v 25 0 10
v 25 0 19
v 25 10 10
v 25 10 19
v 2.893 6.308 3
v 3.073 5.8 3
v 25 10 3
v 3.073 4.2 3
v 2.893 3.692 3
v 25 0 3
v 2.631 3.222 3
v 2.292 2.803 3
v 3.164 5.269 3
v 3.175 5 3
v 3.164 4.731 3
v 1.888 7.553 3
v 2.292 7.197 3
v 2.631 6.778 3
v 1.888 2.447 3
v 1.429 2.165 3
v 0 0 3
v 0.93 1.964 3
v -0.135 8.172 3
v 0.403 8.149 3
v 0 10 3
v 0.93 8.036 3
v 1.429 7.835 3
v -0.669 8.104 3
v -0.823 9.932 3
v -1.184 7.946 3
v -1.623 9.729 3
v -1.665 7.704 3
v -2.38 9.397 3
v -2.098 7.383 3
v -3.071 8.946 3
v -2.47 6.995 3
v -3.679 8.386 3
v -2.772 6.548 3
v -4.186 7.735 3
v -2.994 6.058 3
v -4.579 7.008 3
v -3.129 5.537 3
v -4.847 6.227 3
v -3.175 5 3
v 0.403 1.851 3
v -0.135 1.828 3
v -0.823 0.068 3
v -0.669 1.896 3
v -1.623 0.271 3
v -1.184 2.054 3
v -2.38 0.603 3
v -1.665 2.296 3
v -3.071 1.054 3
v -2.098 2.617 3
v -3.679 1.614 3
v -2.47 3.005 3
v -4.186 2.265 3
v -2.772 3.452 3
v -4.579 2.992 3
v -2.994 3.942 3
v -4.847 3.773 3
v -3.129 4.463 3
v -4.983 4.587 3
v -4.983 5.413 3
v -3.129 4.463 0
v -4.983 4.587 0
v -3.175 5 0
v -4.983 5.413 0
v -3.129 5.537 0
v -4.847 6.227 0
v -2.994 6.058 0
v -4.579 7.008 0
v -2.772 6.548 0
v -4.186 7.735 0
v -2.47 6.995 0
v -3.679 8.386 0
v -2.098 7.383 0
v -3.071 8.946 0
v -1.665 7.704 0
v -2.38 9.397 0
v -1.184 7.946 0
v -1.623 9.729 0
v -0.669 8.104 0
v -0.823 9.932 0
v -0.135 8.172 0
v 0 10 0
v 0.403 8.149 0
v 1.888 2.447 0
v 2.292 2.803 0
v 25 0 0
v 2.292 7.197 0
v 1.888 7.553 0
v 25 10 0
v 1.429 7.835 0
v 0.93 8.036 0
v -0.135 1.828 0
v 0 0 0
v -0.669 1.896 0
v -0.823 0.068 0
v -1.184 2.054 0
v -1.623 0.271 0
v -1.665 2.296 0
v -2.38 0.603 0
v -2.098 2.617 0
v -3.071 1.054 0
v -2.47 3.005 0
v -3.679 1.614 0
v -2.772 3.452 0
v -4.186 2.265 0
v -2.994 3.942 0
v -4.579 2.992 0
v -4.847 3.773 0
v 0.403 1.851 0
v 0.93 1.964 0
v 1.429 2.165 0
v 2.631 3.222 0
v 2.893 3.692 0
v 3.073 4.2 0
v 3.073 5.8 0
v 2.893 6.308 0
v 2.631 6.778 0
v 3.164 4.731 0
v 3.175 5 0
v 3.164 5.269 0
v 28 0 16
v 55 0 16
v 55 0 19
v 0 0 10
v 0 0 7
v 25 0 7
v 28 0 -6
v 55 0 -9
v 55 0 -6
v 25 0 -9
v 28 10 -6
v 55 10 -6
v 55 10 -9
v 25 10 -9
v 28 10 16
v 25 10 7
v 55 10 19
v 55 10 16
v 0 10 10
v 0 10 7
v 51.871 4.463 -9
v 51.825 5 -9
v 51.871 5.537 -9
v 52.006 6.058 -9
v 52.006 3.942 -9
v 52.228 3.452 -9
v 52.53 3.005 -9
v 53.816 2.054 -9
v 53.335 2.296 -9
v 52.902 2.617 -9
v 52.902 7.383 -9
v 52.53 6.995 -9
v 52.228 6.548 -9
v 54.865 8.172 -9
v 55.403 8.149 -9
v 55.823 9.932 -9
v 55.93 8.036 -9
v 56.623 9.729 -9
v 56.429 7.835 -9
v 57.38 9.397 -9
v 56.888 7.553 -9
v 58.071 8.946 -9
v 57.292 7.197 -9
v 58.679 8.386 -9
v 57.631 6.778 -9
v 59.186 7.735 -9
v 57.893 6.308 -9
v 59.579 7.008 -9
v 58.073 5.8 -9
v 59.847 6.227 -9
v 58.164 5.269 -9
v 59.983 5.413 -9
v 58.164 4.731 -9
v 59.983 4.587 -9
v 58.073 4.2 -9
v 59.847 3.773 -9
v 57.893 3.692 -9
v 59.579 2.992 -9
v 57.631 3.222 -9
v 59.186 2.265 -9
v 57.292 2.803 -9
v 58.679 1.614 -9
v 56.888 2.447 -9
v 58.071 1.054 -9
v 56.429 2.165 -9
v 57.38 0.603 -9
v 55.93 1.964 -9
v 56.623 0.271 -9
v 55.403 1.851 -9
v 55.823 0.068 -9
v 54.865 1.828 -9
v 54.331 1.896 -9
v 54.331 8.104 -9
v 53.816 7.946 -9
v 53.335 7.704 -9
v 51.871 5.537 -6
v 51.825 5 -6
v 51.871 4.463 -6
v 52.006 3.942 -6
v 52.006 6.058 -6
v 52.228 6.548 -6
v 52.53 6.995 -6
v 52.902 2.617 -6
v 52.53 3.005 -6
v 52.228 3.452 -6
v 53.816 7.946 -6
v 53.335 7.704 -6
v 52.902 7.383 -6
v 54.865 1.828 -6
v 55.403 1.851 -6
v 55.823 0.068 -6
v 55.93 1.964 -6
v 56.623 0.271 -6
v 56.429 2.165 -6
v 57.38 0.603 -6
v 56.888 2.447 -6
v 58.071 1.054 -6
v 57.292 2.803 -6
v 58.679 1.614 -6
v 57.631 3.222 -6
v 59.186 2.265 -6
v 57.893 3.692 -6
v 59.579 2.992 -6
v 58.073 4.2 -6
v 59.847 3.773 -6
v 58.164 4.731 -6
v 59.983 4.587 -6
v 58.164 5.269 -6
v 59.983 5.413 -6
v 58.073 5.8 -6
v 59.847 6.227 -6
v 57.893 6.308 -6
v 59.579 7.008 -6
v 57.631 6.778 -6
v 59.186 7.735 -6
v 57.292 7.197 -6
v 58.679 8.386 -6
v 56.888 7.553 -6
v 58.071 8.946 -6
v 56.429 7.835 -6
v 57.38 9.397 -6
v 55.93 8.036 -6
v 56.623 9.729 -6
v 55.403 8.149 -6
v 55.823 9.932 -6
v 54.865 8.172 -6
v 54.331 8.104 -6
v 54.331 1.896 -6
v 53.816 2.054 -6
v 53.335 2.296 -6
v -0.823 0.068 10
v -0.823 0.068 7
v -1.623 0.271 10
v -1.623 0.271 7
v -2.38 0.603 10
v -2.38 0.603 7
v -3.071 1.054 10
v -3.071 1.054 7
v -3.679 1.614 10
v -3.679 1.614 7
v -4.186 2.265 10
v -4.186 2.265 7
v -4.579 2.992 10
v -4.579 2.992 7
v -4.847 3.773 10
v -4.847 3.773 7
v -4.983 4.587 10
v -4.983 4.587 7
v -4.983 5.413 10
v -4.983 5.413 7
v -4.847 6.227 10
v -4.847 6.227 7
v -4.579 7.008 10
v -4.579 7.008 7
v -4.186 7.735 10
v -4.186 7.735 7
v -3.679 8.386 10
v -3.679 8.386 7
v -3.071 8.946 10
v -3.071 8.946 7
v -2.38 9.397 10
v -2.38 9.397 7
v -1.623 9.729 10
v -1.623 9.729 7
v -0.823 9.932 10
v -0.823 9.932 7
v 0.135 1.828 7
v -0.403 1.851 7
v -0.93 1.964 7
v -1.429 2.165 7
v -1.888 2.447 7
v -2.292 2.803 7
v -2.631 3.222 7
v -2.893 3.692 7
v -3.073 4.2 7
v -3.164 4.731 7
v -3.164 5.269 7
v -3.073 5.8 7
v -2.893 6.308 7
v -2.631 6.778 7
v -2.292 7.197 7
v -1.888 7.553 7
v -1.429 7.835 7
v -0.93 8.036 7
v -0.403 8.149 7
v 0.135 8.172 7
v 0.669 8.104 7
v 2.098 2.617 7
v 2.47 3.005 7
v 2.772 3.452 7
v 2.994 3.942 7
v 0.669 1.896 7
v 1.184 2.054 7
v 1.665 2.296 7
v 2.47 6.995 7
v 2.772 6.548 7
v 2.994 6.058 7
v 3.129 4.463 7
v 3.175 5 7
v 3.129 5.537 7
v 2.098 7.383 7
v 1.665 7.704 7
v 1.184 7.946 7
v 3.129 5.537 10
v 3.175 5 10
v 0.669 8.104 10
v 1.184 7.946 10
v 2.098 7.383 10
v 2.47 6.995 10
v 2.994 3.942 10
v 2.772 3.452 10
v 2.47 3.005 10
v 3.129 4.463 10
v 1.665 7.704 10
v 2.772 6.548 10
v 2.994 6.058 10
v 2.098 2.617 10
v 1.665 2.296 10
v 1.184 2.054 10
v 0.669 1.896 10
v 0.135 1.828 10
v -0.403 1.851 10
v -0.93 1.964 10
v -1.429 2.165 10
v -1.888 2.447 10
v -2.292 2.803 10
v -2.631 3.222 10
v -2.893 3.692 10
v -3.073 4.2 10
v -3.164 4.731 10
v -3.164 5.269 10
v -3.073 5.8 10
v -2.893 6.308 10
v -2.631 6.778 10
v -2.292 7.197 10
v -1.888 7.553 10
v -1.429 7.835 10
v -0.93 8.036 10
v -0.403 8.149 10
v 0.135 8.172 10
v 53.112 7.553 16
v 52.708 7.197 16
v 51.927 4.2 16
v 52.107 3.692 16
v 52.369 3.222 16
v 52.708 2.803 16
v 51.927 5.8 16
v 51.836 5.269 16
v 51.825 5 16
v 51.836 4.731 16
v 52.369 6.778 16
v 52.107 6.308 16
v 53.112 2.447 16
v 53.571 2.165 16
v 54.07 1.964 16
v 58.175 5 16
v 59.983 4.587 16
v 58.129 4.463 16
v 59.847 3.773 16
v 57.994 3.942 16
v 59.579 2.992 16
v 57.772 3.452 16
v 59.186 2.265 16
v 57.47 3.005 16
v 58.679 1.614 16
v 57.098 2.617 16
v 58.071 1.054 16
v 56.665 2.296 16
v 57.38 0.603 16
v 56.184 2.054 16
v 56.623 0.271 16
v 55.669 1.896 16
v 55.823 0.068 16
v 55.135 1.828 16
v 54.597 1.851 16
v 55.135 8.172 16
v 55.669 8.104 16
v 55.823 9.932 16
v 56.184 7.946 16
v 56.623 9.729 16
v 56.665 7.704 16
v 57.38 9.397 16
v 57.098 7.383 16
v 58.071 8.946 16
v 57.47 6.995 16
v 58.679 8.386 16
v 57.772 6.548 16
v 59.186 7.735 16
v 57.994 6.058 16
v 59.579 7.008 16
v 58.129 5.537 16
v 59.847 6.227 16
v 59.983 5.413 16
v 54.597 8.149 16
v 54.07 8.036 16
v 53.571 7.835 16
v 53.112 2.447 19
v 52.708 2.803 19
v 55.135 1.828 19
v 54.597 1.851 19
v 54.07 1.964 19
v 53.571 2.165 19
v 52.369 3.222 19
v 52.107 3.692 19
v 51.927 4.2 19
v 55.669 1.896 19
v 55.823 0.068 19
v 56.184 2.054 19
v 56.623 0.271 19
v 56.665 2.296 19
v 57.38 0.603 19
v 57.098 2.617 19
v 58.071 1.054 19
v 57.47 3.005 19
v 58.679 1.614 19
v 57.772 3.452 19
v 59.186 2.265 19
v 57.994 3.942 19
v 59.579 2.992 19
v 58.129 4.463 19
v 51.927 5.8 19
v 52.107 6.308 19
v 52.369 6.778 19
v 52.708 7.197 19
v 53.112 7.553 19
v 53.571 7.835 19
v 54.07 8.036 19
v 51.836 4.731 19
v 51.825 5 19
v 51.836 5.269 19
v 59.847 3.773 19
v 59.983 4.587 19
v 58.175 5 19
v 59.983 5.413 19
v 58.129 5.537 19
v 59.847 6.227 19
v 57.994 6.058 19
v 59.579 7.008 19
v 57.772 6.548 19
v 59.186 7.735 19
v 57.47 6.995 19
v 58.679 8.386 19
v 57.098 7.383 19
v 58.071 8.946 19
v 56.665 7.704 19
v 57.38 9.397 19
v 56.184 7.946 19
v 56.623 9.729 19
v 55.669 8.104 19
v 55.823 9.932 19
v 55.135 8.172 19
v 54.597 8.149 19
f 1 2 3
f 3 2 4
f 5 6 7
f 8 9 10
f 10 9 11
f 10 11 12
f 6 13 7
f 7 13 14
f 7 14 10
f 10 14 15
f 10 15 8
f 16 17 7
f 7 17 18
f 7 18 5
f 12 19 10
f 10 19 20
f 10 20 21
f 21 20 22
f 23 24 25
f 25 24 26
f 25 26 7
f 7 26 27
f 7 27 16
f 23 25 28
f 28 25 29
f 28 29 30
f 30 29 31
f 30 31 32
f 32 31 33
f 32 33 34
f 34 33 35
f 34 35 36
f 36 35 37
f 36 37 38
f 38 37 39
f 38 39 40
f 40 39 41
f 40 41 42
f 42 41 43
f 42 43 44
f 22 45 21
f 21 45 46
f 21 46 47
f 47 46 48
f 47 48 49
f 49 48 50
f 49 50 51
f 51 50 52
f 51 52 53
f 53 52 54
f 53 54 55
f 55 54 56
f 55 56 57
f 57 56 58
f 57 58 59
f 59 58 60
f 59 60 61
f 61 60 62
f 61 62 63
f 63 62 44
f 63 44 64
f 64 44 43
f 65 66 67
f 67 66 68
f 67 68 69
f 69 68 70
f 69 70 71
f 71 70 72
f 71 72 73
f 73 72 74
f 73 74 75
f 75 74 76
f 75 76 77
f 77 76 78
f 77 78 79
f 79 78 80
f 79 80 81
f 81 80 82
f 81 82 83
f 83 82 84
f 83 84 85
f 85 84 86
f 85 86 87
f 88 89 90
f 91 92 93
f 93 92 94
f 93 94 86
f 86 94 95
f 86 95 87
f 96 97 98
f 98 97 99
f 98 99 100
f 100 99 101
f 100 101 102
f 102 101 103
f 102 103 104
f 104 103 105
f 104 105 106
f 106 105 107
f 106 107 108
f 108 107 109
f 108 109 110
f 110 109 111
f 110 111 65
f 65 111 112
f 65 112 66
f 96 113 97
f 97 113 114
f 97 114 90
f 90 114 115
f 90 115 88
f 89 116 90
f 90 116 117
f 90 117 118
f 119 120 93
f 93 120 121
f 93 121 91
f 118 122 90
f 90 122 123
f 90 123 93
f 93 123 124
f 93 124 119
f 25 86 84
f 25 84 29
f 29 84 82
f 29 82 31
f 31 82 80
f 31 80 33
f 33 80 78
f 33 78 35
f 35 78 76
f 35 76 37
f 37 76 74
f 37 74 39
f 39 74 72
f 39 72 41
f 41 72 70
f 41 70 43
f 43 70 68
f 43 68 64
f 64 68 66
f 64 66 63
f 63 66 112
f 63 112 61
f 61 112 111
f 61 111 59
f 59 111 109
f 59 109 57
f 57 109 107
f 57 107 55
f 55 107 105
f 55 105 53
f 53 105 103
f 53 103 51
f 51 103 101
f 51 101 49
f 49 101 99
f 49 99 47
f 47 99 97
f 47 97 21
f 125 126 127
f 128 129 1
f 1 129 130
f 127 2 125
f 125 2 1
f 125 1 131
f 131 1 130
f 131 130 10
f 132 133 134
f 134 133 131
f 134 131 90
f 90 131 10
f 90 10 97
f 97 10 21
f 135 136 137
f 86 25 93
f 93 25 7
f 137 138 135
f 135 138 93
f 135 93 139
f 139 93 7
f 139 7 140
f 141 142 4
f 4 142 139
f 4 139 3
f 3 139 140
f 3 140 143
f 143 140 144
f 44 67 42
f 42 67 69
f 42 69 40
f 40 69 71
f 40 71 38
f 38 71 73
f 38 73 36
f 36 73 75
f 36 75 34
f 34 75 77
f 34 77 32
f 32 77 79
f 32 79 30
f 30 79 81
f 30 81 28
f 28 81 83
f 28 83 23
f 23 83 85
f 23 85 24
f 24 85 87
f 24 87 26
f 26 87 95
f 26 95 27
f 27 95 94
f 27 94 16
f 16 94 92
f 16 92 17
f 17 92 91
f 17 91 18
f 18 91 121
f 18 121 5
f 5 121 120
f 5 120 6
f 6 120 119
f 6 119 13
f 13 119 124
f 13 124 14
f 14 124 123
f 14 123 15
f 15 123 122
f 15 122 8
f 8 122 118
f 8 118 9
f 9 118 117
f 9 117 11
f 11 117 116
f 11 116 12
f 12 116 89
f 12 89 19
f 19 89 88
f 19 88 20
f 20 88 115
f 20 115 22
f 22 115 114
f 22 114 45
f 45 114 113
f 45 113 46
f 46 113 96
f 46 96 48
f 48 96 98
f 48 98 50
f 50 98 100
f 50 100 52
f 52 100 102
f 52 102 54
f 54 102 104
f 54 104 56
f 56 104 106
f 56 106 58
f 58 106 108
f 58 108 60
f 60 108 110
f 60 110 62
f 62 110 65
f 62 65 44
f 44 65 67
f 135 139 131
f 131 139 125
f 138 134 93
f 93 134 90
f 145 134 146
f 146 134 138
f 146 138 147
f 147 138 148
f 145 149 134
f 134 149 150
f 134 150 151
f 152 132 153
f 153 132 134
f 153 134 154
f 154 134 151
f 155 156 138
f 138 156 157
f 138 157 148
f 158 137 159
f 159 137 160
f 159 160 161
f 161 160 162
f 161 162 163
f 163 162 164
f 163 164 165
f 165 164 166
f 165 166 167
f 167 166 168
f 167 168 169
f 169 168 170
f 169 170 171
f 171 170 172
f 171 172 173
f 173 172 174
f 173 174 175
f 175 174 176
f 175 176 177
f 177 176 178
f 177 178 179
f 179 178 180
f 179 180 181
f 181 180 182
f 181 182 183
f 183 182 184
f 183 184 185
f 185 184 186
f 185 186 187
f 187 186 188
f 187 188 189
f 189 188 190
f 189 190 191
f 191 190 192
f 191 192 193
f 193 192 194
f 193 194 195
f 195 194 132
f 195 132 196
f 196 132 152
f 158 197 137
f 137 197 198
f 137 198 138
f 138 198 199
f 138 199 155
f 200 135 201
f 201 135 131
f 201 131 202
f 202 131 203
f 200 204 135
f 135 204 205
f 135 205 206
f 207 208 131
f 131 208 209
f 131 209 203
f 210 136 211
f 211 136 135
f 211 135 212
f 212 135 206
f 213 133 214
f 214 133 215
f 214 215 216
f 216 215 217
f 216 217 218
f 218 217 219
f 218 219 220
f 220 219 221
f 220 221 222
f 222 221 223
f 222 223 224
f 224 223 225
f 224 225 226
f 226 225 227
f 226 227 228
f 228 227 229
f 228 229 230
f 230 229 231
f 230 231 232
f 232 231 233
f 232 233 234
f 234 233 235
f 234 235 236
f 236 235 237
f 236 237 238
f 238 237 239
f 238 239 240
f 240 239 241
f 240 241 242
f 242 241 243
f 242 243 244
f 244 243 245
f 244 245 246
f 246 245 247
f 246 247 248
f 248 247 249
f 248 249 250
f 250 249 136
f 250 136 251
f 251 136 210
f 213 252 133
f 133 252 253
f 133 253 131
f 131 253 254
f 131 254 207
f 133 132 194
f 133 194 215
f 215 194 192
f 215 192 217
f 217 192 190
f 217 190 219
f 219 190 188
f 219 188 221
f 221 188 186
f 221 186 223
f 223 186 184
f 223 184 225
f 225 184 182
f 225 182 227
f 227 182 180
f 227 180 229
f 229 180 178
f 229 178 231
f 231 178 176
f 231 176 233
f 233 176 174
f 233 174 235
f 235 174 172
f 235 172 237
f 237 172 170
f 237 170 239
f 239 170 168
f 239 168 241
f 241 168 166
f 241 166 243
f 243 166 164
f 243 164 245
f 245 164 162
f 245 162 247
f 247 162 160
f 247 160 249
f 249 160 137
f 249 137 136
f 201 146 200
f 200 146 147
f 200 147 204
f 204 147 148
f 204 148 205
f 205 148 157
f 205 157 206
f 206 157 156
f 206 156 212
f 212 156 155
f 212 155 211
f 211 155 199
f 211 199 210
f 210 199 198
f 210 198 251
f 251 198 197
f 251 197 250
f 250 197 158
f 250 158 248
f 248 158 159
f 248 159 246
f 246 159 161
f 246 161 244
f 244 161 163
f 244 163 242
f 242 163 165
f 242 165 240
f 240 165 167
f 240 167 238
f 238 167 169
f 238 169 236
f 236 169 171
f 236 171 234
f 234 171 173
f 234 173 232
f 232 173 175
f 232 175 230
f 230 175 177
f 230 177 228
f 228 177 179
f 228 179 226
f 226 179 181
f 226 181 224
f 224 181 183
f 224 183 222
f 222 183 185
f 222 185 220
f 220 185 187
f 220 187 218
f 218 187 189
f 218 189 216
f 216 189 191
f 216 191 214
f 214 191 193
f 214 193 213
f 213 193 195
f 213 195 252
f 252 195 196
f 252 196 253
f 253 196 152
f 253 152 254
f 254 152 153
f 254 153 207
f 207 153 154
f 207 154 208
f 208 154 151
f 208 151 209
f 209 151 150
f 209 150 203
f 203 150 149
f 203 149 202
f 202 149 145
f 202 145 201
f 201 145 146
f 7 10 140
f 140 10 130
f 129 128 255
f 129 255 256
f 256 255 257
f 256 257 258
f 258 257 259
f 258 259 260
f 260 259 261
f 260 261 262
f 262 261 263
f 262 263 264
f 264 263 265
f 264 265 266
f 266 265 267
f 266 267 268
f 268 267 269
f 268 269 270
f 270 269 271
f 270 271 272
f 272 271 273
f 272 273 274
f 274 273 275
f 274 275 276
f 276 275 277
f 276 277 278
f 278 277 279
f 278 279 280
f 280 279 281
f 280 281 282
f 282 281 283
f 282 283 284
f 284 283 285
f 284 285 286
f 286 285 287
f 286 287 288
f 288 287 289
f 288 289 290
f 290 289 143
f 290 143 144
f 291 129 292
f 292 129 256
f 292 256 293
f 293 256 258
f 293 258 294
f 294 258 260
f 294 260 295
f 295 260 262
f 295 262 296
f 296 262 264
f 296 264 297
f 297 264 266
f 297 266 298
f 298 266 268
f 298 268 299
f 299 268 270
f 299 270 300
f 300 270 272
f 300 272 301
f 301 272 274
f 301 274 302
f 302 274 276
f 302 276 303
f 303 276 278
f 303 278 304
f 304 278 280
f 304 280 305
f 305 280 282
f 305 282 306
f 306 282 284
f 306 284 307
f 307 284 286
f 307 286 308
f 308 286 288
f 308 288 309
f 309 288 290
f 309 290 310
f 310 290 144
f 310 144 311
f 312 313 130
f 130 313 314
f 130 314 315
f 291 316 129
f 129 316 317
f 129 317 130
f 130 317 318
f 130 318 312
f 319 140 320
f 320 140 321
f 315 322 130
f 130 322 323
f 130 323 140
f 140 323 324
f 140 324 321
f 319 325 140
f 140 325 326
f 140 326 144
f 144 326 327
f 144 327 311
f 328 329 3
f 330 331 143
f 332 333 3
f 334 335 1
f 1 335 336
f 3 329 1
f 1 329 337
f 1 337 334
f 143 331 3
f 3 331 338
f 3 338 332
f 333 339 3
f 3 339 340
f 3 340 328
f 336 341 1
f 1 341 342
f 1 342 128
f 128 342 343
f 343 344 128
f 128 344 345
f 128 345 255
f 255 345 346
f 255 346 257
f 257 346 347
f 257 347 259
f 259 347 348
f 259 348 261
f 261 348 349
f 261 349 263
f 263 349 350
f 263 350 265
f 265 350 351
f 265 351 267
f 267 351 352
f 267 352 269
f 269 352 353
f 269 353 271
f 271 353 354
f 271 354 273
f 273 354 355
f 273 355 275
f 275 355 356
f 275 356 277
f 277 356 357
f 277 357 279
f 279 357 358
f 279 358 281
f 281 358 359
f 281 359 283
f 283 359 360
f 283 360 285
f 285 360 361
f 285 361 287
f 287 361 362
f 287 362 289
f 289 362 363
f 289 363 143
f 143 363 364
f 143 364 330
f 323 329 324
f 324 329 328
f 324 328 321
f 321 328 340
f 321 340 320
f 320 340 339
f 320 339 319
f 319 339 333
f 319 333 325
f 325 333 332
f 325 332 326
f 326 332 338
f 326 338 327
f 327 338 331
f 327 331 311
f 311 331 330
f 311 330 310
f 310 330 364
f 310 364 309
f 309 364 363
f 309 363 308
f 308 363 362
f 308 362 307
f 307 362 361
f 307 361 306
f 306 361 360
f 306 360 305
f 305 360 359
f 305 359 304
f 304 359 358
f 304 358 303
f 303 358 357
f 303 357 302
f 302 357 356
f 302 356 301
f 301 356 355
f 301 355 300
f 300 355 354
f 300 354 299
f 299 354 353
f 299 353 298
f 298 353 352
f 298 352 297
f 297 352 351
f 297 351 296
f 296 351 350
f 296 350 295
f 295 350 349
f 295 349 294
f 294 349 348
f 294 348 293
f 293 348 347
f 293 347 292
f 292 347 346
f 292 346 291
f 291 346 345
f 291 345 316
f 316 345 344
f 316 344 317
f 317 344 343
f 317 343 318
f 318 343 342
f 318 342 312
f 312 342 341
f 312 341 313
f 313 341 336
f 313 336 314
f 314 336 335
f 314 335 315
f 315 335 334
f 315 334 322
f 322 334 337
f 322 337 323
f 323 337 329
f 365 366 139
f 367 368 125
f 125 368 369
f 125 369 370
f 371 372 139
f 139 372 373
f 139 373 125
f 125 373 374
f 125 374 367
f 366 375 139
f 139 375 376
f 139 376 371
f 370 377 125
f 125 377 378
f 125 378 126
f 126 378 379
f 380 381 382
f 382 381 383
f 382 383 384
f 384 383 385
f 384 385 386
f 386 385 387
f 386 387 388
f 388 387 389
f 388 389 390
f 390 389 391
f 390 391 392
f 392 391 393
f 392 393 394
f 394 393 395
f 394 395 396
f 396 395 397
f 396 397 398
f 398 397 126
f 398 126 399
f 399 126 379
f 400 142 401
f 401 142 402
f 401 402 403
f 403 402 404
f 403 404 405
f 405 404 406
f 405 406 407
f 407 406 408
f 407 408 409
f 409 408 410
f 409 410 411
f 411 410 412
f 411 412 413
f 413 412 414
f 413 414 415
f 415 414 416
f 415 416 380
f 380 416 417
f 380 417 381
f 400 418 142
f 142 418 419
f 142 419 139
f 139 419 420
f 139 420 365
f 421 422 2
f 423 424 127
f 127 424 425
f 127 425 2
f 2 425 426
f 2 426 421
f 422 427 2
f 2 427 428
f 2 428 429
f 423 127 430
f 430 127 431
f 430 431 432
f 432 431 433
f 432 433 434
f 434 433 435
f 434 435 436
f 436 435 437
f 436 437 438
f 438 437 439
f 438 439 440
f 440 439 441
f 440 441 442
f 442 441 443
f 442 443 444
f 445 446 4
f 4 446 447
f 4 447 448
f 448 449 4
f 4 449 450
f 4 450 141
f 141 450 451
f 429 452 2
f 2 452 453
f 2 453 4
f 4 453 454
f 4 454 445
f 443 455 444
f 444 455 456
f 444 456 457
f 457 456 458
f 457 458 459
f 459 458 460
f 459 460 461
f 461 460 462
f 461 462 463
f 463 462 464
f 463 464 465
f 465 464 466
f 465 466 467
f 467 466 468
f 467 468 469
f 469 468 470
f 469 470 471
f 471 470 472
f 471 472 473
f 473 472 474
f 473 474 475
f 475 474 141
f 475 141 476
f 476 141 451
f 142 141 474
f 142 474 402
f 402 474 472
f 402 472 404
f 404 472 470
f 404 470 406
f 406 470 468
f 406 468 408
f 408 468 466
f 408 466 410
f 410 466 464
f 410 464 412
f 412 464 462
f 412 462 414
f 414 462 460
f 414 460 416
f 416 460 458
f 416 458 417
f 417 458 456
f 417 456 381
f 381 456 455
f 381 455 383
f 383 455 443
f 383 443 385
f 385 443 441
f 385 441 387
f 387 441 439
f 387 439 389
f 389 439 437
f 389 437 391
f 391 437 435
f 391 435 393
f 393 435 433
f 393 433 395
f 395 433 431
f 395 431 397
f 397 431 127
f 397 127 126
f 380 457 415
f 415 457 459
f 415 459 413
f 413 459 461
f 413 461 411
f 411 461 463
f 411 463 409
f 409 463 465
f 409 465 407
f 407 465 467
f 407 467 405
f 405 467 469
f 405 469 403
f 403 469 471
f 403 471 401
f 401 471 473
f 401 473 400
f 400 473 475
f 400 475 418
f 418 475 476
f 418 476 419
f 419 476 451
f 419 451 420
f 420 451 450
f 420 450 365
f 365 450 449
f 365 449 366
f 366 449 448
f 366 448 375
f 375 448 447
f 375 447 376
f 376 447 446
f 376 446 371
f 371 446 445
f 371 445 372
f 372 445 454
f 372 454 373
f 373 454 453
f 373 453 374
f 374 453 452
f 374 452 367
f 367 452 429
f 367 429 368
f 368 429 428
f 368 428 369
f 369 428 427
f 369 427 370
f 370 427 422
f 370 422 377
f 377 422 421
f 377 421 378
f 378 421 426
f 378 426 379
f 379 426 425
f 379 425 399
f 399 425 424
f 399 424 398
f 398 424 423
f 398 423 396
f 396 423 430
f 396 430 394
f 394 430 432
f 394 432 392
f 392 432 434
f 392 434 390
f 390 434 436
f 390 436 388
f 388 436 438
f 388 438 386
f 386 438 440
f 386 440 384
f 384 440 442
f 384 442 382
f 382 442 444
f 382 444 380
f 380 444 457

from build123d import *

# Parameters (mm, degrees)
SKETCH1_R           = 3.175
BOSS_EXTRUDE1_DEPTH = 3
SKETCH2_W           = 9
SKETCH2_H           = 10
BOSS_EXTRUDE2_DEPTH = 3
SKETCH3_W           = 30
SKETCH3_H           = 10
BOSS_EXTRUDE3_DEPTH = 3
BOSS_EXTRUDE4_DEPTH = 3
SKETCH6_R           = 3.175
CUT_EXTRUDE1_DEPTH  = 3
SKETCH7_W           = 3
SKETCH7_H           = 8
BOSS_EXTRUDE5_DEPTH = 10


with BuildPart() as part:
    # Sketch1 → Boss-Extrude1 (new body)
    with BuildSketch(Plane.XY):
        with BuildLine():
            Line((0, 0), (25, 0))
            Line((25, 0), (25, 10))
            Line((25, 10), (0, 10))
            ThreePointArc((0, 10), (-5, 5), (0, 0))
        make_face()
        with Locations((0, 5)):
            Circle(SKETCH1_R, mode=Mode.SUBTRACT)
    boss_extrude1 = extrude(amount=BOSS_EXTRUDE1_DEPTH)

    # Sketch2 → Boss-Extrude2 (add)
    with BuildSketch(Plane(origin=(25, 0, 0), x_dir=(0, 0, -1), z_dir=(1, 0, 0))):
        with Locations((1.5, 5)):
            Rectangle(SKETCH2_W, SKETCH2_H)
    boss_extrude2 = extrude(amount=BOSS_EXTRUDE2_DEPTH)

    # Sketch3 → Boss-Extrude3 (add)
    with BuildSketch(Plane(origin=(0, 0, -6), x_dir=(-1, 0, 0), z_dir=(0, 0, -1))):
        with Locations((-40, 5)):
            Rectangle(SKETCH3_W, SKETCH3_H)
    boss_extrude3 = extrude(amount=BOSS_EXTRUDE3_DEPTH)

    # Sketch5 → Boss-Extrude4 (add)
    with BuildSketch(Plane(origin=(0, 0, -9), x_dir=(-1, 0, 0), z_dir=(0, 0, -1))):
        with BuildLine():
            Line((-55, 10), (-55, 0))
            ThreePointArc((-55, 0), (-60, 5), (-55, 10))
        make_face()
    boss_extrude4 = extrude(amount=-BOSS_EXTRUDE4_DEPTH)

    # Sketch6 → Cut-Extrude1 (cut)
    with BuildSketch(Plane(origin=(0, 0, -9), x_dir=(-1, 0, 0), z_dir=(0, 0, -1))):
        with Locations((-55, 5)):
            Circle(SKETCH6_R)
    cut_extrude1 = extrude(amount=-CUT_EXTRUDE1_DEPTH, mode=Mode.SUBTRACT)

    # Sketch7 → Boss-Extrude5 (add)
    with BuildSketch(Plane(origin=(0, 10, 0), x_dir=(1, 0, 0), z_dir=(0, 1, 0))):
        with Locations((26.5, -7)):
            Rectangle(SKETCH7_W, SKETCH7_H)
    boss_extrude5 = extrude(amount=-BOSS_EXTRUDE5_DEPTH)

    # Mirror5: Boss-Extrude1, Boss-Extrude2, Boss-Extrude3, Boss-Extrude4, Cut-Extrude1, Boss-Extrude5 across plane
    add(boss_extrude1.mirror(Plane.XY.offset(5)))
    add(boss_extrude2.mirror(Plane.XY.offset(5)))
    add(boss_extrude3.mirror(Plane.XY.offset(5)))
    add(boss_extrude4.mirror(Plane.XY.offset(5)))
    add(cut_extrude1.mirror(Plane.XY.offset(5)), mode=Mode.SUBTRACT)
    add(boss_extrude5.mirror(Plane.XY.offset(5)))


solid = part.part
